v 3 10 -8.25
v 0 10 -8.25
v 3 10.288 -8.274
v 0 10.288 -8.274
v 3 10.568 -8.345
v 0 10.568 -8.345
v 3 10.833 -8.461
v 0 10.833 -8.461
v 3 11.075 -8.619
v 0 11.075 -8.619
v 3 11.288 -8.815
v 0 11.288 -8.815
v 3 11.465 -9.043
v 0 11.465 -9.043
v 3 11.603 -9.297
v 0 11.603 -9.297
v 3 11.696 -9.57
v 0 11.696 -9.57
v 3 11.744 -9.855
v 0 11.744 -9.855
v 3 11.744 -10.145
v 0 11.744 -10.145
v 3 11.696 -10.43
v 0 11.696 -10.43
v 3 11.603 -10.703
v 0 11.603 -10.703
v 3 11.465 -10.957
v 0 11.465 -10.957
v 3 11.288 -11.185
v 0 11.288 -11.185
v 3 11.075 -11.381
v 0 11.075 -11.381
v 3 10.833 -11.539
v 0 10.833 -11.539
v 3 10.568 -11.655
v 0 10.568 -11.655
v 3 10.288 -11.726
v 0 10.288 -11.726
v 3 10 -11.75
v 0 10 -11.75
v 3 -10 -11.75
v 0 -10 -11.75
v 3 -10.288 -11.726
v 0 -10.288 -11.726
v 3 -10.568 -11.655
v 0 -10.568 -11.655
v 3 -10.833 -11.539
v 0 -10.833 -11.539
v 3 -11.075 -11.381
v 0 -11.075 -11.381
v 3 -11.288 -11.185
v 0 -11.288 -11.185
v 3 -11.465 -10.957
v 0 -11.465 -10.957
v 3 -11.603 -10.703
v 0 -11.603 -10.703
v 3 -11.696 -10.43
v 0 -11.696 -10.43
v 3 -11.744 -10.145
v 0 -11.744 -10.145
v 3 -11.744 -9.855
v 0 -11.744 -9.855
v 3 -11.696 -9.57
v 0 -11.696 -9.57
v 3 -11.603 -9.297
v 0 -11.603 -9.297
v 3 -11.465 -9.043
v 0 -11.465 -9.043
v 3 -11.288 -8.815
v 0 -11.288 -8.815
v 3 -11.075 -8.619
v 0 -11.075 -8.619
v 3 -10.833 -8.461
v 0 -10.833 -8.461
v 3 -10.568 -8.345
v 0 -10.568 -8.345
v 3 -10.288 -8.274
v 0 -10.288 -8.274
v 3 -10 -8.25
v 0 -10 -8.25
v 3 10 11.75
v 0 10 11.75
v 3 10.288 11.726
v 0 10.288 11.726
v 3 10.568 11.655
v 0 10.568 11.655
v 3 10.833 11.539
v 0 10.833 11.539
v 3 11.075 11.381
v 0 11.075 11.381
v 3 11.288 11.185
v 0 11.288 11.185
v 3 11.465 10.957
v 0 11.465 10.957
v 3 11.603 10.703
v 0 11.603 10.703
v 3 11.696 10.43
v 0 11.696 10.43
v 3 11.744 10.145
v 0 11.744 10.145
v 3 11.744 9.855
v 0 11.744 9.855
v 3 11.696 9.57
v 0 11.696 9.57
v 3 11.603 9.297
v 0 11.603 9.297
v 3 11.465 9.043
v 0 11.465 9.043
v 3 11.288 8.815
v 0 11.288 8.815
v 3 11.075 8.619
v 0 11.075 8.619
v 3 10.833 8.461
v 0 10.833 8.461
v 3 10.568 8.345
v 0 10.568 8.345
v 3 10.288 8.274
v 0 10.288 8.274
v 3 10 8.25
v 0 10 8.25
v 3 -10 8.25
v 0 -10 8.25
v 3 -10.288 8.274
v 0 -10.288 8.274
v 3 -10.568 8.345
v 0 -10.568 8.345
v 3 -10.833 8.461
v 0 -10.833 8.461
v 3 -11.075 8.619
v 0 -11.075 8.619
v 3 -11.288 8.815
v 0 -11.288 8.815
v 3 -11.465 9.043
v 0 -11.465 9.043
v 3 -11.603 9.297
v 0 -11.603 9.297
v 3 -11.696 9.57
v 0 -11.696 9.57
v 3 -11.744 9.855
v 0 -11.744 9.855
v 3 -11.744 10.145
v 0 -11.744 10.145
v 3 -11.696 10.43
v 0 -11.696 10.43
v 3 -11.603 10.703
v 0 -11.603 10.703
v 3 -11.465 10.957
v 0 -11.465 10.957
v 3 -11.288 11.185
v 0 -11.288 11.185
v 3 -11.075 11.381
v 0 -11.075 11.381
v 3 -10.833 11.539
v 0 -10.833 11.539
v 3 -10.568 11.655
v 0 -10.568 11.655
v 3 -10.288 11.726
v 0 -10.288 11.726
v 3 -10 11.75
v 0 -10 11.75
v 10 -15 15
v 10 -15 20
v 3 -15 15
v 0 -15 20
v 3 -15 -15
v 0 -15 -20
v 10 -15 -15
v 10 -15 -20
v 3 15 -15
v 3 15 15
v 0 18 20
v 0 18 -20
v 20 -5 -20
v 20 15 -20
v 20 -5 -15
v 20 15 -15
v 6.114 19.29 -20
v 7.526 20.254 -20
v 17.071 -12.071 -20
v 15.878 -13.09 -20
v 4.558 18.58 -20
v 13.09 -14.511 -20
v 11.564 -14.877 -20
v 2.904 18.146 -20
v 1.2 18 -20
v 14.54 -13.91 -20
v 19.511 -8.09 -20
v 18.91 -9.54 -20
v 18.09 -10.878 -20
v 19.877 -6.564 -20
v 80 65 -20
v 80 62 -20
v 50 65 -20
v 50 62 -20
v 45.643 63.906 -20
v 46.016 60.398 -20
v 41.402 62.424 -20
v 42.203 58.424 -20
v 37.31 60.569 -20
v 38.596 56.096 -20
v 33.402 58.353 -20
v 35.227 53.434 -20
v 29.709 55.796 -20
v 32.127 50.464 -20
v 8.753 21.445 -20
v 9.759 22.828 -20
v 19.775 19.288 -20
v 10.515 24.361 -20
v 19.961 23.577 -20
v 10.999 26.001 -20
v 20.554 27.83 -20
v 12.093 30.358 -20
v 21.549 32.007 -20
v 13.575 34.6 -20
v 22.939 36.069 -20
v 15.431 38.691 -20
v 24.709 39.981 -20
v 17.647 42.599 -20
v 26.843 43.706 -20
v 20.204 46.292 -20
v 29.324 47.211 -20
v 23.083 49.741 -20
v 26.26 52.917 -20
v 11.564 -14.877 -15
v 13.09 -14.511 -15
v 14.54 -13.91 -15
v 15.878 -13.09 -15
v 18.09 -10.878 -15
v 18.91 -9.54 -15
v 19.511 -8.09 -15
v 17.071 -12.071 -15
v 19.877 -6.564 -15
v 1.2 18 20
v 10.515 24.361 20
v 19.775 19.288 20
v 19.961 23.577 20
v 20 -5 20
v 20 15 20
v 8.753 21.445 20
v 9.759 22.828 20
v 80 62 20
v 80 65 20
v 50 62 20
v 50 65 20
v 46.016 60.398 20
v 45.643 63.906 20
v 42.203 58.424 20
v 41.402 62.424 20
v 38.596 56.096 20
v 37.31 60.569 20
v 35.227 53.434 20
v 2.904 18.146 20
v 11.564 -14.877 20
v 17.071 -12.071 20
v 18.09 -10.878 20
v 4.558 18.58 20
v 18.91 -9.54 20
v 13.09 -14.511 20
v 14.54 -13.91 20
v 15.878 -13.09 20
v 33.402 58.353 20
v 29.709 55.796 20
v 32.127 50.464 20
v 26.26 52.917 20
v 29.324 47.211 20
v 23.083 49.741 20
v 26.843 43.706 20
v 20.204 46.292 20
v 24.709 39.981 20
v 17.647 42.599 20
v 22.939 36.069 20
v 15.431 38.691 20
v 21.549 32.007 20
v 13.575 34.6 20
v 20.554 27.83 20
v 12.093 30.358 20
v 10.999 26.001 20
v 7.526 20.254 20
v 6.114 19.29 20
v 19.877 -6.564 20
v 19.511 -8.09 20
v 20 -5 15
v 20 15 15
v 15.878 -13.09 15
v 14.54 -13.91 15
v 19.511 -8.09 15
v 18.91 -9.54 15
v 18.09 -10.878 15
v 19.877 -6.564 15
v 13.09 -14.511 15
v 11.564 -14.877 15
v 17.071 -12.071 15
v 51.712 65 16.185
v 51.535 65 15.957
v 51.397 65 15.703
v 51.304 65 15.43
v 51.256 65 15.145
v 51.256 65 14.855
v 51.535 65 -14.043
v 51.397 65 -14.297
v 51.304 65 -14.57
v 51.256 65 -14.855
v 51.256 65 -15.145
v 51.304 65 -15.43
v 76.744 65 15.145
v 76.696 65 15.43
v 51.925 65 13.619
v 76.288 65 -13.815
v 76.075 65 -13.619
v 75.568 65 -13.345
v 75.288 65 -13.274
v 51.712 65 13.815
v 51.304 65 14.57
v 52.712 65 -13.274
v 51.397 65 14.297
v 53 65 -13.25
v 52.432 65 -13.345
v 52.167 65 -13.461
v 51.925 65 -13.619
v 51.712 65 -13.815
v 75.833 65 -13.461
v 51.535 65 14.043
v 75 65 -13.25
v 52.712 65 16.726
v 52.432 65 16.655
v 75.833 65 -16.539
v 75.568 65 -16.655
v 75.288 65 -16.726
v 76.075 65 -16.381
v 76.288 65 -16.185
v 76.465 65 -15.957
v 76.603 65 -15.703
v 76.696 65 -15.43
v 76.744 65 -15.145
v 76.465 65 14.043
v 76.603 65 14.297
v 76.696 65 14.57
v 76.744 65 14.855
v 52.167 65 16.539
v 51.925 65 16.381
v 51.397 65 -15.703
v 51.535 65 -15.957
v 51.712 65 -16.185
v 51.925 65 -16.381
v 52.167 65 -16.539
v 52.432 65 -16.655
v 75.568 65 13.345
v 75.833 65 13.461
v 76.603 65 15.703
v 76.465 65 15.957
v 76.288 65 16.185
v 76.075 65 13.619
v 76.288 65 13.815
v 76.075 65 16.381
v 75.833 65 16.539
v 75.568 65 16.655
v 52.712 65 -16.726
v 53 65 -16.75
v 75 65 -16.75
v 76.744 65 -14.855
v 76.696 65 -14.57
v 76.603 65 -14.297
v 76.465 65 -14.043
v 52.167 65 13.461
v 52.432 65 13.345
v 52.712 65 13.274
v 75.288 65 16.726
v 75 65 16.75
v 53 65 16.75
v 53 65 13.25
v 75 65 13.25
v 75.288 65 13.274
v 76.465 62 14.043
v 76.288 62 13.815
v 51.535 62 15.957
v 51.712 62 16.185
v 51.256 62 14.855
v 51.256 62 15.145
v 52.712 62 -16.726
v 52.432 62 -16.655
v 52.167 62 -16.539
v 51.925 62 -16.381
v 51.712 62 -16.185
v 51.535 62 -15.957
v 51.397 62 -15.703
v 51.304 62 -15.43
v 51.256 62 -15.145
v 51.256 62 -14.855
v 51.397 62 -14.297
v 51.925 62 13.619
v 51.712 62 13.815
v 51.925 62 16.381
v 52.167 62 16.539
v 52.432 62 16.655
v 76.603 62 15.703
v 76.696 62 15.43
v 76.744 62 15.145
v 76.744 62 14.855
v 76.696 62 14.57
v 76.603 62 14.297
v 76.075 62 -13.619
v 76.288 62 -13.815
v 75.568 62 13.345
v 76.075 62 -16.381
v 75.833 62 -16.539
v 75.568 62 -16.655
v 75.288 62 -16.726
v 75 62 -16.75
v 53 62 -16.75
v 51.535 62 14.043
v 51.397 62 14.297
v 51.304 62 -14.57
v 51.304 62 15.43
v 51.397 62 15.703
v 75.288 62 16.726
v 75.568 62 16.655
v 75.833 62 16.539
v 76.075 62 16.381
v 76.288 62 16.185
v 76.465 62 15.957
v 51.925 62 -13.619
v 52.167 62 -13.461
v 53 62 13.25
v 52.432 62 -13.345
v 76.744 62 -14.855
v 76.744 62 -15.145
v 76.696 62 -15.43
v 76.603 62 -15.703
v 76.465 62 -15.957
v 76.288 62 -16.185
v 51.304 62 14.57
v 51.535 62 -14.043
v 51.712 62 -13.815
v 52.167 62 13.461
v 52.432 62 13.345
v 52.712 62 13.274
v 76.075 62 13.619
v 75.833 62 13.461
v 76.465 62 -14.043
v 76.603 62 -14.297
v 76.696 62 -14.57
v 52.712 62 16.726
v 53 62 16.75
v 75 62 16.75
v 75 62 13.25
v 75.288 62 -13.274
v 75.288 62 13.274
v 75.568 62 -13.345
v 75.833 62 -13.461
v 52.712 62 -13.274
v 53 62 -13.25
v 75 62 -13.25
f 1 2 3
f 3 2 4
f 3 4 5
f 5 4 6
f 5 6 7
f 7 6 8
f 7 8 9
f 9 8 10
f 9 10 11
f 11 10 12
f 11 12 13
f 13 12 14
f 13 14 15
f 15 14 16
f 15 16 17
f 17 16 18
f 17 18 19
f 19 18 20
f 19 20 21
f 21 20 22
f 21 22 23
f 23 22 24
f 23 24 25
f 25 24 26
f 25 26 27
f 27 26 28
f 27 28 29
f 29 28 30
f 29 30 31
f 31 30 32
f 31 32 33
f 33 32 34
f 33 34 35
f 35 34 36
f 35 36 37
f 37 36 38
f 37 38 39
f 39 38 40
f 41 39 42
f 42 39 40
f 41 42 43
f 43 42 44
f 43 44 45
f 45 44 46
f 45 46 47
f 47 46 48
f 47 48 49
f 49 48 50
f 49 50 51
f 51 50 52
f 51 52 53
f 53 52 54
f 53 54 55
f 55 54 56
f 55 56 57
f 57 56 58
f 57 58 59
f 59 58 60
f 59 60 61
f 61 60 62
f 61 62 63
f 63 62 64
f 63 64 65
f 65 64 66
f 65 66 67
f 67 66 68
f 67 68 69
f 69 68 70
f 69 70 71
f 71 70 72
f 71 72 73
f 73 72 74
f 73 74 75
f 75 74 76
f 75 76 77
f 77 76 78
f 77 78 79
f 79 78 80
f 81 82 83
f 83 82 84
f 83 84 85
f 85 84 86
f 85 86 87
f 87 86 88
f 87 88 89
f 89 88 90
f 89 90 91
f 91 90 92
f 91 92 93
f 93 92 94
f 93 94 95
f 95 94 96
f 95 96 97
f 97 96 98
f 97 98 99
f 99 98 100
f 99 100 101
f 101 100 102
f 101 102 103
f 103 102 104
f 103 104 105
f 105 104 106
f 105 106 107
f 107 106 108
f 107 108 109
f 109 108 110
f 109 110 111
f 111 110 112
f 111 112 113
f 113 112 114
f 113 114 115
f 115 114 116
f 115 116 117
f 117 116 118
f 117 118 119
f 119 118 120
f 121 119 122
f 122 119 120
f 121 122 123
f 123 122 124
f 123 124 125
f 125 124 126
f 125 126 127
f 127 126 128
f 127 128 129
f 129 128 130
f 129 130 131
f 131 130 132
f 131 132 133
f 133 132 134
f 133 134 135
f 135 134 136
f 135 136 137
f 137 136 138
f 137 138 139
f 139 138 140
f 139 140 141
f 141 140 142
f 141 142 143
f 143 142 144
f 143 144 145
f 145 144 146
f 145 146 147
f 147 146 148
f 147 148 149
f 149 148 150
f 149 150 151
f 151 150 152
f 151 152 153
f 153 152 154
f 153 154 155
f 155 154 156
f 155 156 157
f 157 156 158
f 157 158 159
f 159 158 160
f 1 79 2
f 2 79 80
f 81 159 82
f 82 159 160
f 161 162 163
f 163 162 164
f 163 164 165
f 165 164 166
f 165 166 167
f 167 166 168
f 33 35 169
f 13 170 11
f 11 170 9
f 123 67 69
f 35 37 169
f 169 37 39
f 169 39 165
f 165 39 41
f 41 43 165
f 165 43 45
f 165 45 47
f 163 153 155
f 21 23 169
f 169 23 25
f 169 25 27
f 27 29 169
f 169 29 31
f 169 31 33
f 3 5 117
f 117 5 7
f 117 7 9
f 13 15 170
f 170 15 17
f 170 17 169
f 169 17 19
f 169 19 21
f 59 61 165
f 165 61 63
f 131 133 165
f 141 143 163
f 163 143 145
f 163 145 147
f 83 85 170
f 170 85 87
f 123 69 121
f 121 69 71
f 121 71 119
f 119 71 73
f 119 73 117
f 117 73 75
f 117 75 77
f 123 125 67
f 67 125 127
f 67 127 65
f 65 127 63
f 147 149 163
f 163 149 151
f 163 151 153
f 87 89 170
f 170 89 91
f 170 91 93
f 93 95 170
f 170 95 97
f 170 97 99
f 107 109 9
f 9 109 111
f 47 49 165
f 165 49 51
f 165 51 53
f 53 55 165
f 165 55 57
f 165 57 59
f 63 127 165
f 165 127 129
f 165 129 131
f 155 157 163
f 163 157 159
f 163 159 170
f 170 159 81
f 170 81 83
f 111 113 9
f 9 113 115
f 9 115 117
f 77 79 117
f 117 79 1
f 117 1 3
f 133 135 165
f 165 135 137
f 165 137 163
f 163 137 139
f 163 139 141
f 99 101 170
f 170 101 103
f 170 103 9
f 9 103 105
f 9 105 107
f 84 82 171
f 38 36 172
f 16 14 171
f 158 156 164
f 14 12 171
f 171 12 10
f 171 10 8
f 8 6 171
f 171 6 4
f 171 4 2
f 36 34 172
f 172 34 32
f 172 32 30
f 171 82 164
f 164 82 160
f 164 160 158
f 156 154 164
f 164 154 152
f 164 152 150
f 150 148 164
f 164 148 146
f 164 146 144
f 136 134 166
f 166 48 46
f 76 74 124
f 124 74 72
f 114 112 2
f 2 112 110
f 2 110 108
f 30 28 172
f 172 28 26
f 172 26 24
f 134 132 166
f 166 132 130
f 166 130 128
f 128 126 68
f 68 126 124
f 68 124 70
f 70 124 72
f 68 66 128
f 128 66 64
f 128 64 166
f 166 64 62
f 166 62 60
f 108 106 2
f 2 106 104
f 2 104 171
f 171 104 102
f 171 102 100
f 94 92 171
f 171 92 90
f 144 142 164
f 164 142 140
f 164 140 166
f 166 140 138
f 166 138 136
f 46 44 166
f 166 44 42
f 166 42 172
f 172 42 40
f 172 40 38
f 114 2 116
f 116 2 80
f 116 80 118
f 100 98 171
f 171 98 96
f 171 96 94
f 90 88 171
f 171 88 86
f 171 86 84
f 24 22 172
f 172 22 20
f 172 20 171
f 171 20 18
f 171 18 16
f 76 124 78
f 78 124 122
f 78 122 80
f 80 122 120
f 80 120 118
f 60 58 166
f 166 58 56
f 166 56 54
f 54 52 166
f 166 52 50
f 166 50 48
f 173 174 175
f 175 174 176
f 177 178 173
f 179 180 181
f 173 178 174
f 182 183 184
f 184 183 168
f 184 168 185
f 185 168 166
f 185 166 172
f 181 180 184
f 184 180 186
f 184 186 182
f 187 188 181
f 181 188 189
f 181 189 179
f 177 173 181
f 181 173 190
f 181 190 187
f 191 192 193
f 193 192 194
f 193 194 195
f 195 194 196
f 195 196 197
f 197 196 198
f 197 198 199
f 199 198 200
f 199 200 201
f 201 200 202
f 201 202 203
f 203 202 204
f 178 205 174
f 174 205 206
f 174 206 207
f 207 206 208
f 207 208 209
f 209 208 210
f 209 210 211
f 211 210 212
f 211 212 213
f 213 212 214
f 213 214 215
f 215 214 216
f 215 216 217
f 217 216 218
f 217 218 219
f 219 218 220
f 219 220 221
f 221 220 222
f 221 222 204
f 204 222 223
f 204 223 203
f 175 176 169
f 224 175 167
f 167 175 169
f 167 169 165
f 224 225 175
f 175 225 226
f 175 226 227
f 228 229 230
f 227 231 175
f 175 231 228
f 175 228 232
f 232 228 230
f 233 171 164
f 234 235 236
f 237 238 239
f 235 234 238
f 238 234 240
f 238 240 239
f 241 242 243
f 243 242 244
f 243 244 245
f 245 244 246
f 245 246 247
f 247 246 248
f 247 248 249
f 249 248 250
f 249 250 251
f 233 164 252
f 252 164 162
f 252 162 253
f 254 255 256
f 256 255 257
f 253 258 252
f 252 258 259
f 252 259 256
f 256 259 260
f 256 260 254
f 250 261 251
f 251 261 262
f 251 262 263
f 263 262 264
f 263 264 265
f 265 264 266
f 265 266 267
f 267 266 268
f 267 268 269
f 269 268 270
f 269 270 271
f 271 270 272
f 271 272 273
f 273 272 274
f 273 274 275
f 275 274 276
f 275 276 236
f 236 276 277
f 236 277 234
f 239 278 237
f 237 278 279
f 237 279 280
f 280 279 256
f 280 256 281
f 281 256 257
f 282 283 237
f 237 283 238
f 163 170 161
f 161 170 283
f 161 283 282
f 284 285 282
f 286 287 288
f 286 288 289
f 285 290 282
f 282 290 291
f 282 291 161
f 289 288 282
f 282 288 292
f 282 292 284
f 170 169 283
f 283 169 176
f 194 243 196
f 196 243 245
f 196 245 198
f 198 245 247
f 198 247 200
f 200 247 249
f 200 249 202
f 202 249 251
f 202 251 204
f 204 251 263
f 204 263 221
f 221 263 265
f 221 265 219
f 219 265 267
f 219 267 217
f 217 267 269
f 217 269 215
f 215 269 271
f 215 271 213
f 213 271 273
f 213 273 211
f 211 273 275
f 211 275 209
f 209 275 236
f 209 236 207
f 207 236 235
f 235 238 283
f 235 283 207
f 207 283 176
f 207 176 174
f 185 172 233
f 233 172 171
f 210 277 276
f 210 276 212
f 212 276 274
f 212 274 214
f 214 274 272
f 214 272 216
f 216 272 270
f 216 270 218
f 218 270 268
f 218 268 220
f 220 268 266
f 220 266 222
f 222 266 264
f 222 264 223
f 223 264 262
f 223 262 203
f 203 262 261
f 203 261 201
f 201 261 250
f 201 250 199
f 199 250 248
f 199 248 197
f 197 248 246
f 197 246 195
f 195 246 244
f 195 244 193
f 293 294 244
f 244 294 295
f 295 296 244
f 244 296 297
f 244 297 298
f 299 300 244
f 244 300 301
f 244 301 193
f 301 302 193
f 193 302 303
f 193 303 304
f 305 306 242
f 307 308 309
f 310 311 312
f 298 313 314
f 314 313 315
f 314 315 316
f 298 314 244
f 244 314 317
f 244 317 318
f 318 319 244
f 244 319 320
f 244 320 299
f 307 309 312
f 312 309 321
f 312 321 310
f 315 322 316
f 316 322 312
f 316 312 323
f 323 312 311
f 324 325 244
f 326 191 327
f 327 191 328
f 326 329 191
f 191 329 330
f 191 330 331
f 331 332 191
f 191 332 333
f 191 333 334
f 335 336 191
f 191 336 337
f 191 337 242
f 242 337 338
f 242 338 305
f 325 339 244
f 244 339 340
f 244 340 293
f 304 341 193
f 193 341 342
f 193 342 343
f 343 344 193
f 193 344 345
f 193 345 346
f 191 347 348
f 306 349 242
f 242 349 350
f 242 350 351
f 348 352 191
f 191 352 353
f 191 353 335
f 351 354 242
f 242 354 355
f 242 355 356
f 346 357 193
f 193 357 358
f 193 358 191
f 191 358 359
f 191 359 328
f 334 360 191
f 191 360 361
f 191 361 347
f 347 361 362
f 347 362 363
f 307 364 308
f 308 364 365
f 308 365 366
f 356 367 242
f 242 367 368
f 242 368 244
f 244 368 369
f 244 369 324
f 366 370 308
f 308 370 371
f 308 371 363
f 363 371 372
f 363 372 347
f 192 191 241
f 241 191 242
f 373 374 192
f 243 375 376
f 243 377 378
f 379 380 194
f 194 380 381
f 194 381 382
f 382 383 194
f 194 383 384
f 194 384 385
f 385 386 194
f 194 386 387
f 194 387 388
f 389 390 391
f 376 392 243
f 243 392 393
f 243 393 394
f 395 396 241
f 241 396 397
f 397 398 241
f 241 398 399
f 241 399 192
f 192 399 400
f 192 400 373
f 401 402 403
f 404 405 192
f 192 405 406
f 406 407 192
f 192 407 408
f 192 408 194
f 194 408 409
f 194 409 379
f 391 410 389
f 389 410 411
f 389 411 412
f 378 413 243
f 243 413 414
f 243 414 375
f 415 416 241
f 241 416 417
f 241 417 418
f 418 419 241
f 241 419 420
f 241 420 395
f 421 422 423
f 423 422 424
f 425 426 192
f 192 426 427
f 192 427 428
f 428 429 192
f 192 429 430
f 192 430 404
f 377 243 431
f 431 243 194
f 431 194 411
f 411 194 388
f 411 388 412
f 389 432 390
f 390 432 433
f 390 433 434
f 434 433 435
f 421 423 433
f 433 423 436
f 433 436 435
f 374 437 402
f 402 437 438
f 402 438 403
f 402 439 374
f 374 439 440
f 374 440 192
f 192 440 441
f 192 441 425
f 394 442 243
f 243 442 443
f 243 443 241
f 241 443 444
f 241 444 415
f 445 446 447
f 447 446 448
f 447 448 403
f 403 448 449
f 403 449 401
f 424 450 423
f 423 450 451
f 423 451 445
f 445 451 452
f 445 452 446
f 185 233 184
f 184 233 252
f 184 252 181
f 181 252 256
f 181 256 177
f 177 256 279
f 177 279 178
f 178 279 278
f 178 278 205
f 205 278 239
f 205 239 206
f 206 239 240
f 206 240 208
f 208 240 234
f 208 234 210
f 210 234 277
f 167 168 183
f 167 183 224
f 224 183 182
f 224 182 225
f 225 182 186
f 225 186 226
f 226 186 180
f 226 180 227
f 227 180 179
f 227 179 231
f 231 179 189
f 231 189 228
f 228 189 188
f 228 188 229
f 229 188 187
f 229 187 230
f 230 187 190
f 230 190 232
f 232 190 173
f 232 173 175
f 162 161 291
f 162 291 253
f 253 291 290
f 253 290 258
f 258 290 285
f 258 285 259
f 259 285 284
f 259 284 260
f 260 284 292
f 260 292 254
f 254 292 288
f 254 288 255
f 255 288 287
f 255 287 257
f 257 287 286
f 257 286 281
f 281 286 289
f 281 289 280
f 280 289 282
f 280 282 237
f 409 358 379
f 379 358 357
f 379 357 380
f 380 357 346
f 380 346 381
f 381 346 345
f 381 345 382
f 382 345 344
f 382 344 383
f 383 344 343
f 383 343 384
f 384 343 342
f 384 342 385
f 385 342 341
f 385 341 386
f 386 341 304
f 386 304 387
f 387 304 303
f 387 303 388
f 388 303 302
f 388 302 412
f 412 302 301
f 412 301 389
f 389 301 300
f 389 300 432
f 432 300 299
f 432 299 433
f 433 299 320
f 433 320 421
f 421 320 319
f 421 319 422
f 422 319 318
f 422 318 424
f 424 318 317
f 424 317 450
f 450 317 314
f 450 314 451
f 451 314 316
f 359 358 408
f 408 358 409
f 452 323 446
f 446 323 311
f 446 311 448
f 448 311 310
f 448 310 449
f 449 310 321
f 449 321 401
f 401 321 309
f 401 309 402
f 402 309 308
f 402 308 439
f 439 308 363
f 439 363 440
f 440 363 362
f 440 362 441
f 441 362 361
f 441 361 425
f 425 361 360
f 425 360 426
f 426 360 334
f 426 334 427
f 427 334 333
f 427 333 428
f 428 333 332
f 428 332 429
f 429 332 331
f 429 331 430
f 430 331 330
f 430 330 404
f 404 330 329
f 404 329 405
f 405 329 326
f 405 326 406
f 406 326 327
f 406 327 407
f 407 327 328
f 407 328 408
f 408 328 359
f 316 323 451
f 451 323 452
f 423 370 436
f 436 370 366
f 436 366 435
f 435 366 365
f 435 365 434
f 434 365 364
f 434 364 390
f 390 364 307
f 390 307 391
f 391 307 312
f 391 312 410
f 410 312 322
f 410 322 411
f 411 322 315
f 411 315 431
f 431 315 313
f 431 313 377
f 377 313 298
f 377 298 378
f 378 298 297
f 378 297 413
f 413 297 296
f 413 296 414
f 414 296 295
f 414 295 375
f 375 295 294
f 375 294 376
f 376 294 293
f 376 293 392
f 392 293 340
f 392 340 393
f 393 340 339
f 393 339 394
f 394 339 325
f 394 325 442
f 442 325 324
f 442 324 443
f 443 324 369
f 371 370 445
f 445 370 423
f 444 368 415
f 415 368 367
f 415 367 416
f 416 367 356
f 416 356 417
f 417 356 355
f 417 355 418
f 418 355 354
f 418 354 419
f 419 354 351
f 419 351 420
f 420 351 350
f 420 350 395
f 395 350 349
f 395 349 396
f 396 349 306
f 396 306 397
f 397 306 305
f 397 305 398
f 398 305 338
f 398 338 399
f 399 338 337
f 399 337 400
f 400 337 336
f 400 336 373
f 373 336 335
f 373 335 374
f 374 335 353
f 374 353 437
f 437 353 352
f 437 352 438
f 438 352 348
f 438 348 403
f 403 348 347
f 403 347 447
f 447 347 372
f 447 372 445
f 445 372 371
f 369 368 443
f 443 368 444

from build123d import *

# Parameters (mm, degrees)
SKETCH_1_W            = 30
SKETCH_1_H            = 30
EXTRUDE_1_DEPTH       = 3
EXTRUDE_2_DEPTH       = 30
EXTRUDE_3_DEPTH       = 40
FILLET_1_R            = 10
CUT_EXTRUDE_START     = -20
CUT_EXTRUDE_1_DEPTH   = 40
CUT_EXTRUDE_START_2   = -3
CUT_EXTRUDE_1_2_DEPTH = 3


# Read off the part's stored shape, not the designer's step: 切除-拉伸1
with BuildPart() as part:
    # 草图1 → 凸台-拉伸1 (new body)
    with BuildSketch(Plane(origin=(0, 0, 0), x_dir=(0, 0, -1), z_dir=(1, 0, 0))):
        Rectangle(SKETCH_1_W, SKETCH_1_H)
        with BuildLine():
            Line((-11.75, -10), (-11.75, 10))
            ThreePointArc((-11.75, 10), (-10, 11.75), (-8.25, 10))
            Line((-8.25, 10), (-8.25, -10))
            ThreePointArc((-8.25, -10), (-10, -11.75), (-11.75, -10))
        make_face(mode=Mode.SUBTRACT)
        with BuildLine():
            ThreePointArc((8.25, 10), (10, 11.75), (11.75, 10))
            Line((11.75, 10), (11.75, -10))
            ThreePointArc((11.75, -10), (10, -11.75), (8.25, -10))
            Line((8.25, -10), (8.25, 10))
        make_face(mode=Mode.SUBTRACT)
    extrude(amount=EXTRUDE_1_DEPTH)

    # 草图2 → 凸台-拉伸2 (add)
    with BuildSketch(Plane.XZ.offset(15)):
        Polygon((20, -20), (20, -15), (3, -15), (0, -15), (0, -20), align=None)
        Polygon((20, 20), (0, 20), (0, 15), (3, 15), (20, 15), align=None)
    extrude(amount=-EXTRUDE_2_DEPTH)

    # 草图3 → 凸台-拉伸3 (add)
    with BuildSketch(Plane.XY.offset(20)):
        with BuildLine():
            ThreePointArc((50, 65), (21.901058366, 48.400183617), (10.029526833, 18))
            Line((10.029526833, 18), (0, 18))
            Line((0, 18), (0, 15))
            Line((0, 15), (20, 15))
            ThreePointArc((20, 15), (26.843467388, 43.706297412), (50, 62))
            Line((50, 62), (80, 62))
            Line((80, 62), (80, 65))
            Line((80, 65), (50, 65))
        make_face()
    extrude(amount=-EXTRUDE_3_DEPTH)

    # 圆角1
    fillet_1_edges = [part.edges().sort_by_distance(p)[0] for p in [
        (10.029526833, 18, 0),
    ]]
    fillet(fillet_1_edges, radius=FILLET_1_R)

    # 切除-拉伸1 outline → 切除-拉伸1 (cut)
    with BuildSketch(Plane.XY.offset(CUT_EXTRUDE_START)):
        with BuildLine():
            Line((20, -15), (20, -5))
            ThreePointArc((20, -5), (17.071067812, -12.071067812), (10, -15))
            Line((10, -15), (20, -15))
        make_face()
    extrude(amount=CUT_EXTRUDE_1_DEPTH, mode=Mode.SUBTRACT)

    # Cut-Extrude 1 2 outline → Cut-Extrude 1 2 (cut)
    with BuildSketch(Plane(origin=(0, 65, 0), x_dir=(1, 0, 0), z_dir=(0, 1, 0)).offset(CUT_EXTRUDE_START_2)):
        with BuildLine():
            Line((75, 16.75), (53, 16.75))
            ThreePointArc((53, 16.75), (51.25, 15), (53, 13.25))
            Line((53, 13.25), (75, 13.25))
            ThreePointArc((75, 13.25), (76.75, 15), (75, 16.75))
        make_face()
        with BuildLine():
            Line((75, -13.25), (53, -13.25))
            ThreePointArc((53, -13.25), (51.25, -15), (53, -16.75))
            Line((53, -16.75), (75, -16.75))
            ThreePointArc((75, -16.75), (76.75, -15), (75, -13.25))
        make_face()
    extrude(amount=CUT_EXTRUDE_1_2_DEPTH, mode=Mode.SUBTRACT)


solid = part.part
